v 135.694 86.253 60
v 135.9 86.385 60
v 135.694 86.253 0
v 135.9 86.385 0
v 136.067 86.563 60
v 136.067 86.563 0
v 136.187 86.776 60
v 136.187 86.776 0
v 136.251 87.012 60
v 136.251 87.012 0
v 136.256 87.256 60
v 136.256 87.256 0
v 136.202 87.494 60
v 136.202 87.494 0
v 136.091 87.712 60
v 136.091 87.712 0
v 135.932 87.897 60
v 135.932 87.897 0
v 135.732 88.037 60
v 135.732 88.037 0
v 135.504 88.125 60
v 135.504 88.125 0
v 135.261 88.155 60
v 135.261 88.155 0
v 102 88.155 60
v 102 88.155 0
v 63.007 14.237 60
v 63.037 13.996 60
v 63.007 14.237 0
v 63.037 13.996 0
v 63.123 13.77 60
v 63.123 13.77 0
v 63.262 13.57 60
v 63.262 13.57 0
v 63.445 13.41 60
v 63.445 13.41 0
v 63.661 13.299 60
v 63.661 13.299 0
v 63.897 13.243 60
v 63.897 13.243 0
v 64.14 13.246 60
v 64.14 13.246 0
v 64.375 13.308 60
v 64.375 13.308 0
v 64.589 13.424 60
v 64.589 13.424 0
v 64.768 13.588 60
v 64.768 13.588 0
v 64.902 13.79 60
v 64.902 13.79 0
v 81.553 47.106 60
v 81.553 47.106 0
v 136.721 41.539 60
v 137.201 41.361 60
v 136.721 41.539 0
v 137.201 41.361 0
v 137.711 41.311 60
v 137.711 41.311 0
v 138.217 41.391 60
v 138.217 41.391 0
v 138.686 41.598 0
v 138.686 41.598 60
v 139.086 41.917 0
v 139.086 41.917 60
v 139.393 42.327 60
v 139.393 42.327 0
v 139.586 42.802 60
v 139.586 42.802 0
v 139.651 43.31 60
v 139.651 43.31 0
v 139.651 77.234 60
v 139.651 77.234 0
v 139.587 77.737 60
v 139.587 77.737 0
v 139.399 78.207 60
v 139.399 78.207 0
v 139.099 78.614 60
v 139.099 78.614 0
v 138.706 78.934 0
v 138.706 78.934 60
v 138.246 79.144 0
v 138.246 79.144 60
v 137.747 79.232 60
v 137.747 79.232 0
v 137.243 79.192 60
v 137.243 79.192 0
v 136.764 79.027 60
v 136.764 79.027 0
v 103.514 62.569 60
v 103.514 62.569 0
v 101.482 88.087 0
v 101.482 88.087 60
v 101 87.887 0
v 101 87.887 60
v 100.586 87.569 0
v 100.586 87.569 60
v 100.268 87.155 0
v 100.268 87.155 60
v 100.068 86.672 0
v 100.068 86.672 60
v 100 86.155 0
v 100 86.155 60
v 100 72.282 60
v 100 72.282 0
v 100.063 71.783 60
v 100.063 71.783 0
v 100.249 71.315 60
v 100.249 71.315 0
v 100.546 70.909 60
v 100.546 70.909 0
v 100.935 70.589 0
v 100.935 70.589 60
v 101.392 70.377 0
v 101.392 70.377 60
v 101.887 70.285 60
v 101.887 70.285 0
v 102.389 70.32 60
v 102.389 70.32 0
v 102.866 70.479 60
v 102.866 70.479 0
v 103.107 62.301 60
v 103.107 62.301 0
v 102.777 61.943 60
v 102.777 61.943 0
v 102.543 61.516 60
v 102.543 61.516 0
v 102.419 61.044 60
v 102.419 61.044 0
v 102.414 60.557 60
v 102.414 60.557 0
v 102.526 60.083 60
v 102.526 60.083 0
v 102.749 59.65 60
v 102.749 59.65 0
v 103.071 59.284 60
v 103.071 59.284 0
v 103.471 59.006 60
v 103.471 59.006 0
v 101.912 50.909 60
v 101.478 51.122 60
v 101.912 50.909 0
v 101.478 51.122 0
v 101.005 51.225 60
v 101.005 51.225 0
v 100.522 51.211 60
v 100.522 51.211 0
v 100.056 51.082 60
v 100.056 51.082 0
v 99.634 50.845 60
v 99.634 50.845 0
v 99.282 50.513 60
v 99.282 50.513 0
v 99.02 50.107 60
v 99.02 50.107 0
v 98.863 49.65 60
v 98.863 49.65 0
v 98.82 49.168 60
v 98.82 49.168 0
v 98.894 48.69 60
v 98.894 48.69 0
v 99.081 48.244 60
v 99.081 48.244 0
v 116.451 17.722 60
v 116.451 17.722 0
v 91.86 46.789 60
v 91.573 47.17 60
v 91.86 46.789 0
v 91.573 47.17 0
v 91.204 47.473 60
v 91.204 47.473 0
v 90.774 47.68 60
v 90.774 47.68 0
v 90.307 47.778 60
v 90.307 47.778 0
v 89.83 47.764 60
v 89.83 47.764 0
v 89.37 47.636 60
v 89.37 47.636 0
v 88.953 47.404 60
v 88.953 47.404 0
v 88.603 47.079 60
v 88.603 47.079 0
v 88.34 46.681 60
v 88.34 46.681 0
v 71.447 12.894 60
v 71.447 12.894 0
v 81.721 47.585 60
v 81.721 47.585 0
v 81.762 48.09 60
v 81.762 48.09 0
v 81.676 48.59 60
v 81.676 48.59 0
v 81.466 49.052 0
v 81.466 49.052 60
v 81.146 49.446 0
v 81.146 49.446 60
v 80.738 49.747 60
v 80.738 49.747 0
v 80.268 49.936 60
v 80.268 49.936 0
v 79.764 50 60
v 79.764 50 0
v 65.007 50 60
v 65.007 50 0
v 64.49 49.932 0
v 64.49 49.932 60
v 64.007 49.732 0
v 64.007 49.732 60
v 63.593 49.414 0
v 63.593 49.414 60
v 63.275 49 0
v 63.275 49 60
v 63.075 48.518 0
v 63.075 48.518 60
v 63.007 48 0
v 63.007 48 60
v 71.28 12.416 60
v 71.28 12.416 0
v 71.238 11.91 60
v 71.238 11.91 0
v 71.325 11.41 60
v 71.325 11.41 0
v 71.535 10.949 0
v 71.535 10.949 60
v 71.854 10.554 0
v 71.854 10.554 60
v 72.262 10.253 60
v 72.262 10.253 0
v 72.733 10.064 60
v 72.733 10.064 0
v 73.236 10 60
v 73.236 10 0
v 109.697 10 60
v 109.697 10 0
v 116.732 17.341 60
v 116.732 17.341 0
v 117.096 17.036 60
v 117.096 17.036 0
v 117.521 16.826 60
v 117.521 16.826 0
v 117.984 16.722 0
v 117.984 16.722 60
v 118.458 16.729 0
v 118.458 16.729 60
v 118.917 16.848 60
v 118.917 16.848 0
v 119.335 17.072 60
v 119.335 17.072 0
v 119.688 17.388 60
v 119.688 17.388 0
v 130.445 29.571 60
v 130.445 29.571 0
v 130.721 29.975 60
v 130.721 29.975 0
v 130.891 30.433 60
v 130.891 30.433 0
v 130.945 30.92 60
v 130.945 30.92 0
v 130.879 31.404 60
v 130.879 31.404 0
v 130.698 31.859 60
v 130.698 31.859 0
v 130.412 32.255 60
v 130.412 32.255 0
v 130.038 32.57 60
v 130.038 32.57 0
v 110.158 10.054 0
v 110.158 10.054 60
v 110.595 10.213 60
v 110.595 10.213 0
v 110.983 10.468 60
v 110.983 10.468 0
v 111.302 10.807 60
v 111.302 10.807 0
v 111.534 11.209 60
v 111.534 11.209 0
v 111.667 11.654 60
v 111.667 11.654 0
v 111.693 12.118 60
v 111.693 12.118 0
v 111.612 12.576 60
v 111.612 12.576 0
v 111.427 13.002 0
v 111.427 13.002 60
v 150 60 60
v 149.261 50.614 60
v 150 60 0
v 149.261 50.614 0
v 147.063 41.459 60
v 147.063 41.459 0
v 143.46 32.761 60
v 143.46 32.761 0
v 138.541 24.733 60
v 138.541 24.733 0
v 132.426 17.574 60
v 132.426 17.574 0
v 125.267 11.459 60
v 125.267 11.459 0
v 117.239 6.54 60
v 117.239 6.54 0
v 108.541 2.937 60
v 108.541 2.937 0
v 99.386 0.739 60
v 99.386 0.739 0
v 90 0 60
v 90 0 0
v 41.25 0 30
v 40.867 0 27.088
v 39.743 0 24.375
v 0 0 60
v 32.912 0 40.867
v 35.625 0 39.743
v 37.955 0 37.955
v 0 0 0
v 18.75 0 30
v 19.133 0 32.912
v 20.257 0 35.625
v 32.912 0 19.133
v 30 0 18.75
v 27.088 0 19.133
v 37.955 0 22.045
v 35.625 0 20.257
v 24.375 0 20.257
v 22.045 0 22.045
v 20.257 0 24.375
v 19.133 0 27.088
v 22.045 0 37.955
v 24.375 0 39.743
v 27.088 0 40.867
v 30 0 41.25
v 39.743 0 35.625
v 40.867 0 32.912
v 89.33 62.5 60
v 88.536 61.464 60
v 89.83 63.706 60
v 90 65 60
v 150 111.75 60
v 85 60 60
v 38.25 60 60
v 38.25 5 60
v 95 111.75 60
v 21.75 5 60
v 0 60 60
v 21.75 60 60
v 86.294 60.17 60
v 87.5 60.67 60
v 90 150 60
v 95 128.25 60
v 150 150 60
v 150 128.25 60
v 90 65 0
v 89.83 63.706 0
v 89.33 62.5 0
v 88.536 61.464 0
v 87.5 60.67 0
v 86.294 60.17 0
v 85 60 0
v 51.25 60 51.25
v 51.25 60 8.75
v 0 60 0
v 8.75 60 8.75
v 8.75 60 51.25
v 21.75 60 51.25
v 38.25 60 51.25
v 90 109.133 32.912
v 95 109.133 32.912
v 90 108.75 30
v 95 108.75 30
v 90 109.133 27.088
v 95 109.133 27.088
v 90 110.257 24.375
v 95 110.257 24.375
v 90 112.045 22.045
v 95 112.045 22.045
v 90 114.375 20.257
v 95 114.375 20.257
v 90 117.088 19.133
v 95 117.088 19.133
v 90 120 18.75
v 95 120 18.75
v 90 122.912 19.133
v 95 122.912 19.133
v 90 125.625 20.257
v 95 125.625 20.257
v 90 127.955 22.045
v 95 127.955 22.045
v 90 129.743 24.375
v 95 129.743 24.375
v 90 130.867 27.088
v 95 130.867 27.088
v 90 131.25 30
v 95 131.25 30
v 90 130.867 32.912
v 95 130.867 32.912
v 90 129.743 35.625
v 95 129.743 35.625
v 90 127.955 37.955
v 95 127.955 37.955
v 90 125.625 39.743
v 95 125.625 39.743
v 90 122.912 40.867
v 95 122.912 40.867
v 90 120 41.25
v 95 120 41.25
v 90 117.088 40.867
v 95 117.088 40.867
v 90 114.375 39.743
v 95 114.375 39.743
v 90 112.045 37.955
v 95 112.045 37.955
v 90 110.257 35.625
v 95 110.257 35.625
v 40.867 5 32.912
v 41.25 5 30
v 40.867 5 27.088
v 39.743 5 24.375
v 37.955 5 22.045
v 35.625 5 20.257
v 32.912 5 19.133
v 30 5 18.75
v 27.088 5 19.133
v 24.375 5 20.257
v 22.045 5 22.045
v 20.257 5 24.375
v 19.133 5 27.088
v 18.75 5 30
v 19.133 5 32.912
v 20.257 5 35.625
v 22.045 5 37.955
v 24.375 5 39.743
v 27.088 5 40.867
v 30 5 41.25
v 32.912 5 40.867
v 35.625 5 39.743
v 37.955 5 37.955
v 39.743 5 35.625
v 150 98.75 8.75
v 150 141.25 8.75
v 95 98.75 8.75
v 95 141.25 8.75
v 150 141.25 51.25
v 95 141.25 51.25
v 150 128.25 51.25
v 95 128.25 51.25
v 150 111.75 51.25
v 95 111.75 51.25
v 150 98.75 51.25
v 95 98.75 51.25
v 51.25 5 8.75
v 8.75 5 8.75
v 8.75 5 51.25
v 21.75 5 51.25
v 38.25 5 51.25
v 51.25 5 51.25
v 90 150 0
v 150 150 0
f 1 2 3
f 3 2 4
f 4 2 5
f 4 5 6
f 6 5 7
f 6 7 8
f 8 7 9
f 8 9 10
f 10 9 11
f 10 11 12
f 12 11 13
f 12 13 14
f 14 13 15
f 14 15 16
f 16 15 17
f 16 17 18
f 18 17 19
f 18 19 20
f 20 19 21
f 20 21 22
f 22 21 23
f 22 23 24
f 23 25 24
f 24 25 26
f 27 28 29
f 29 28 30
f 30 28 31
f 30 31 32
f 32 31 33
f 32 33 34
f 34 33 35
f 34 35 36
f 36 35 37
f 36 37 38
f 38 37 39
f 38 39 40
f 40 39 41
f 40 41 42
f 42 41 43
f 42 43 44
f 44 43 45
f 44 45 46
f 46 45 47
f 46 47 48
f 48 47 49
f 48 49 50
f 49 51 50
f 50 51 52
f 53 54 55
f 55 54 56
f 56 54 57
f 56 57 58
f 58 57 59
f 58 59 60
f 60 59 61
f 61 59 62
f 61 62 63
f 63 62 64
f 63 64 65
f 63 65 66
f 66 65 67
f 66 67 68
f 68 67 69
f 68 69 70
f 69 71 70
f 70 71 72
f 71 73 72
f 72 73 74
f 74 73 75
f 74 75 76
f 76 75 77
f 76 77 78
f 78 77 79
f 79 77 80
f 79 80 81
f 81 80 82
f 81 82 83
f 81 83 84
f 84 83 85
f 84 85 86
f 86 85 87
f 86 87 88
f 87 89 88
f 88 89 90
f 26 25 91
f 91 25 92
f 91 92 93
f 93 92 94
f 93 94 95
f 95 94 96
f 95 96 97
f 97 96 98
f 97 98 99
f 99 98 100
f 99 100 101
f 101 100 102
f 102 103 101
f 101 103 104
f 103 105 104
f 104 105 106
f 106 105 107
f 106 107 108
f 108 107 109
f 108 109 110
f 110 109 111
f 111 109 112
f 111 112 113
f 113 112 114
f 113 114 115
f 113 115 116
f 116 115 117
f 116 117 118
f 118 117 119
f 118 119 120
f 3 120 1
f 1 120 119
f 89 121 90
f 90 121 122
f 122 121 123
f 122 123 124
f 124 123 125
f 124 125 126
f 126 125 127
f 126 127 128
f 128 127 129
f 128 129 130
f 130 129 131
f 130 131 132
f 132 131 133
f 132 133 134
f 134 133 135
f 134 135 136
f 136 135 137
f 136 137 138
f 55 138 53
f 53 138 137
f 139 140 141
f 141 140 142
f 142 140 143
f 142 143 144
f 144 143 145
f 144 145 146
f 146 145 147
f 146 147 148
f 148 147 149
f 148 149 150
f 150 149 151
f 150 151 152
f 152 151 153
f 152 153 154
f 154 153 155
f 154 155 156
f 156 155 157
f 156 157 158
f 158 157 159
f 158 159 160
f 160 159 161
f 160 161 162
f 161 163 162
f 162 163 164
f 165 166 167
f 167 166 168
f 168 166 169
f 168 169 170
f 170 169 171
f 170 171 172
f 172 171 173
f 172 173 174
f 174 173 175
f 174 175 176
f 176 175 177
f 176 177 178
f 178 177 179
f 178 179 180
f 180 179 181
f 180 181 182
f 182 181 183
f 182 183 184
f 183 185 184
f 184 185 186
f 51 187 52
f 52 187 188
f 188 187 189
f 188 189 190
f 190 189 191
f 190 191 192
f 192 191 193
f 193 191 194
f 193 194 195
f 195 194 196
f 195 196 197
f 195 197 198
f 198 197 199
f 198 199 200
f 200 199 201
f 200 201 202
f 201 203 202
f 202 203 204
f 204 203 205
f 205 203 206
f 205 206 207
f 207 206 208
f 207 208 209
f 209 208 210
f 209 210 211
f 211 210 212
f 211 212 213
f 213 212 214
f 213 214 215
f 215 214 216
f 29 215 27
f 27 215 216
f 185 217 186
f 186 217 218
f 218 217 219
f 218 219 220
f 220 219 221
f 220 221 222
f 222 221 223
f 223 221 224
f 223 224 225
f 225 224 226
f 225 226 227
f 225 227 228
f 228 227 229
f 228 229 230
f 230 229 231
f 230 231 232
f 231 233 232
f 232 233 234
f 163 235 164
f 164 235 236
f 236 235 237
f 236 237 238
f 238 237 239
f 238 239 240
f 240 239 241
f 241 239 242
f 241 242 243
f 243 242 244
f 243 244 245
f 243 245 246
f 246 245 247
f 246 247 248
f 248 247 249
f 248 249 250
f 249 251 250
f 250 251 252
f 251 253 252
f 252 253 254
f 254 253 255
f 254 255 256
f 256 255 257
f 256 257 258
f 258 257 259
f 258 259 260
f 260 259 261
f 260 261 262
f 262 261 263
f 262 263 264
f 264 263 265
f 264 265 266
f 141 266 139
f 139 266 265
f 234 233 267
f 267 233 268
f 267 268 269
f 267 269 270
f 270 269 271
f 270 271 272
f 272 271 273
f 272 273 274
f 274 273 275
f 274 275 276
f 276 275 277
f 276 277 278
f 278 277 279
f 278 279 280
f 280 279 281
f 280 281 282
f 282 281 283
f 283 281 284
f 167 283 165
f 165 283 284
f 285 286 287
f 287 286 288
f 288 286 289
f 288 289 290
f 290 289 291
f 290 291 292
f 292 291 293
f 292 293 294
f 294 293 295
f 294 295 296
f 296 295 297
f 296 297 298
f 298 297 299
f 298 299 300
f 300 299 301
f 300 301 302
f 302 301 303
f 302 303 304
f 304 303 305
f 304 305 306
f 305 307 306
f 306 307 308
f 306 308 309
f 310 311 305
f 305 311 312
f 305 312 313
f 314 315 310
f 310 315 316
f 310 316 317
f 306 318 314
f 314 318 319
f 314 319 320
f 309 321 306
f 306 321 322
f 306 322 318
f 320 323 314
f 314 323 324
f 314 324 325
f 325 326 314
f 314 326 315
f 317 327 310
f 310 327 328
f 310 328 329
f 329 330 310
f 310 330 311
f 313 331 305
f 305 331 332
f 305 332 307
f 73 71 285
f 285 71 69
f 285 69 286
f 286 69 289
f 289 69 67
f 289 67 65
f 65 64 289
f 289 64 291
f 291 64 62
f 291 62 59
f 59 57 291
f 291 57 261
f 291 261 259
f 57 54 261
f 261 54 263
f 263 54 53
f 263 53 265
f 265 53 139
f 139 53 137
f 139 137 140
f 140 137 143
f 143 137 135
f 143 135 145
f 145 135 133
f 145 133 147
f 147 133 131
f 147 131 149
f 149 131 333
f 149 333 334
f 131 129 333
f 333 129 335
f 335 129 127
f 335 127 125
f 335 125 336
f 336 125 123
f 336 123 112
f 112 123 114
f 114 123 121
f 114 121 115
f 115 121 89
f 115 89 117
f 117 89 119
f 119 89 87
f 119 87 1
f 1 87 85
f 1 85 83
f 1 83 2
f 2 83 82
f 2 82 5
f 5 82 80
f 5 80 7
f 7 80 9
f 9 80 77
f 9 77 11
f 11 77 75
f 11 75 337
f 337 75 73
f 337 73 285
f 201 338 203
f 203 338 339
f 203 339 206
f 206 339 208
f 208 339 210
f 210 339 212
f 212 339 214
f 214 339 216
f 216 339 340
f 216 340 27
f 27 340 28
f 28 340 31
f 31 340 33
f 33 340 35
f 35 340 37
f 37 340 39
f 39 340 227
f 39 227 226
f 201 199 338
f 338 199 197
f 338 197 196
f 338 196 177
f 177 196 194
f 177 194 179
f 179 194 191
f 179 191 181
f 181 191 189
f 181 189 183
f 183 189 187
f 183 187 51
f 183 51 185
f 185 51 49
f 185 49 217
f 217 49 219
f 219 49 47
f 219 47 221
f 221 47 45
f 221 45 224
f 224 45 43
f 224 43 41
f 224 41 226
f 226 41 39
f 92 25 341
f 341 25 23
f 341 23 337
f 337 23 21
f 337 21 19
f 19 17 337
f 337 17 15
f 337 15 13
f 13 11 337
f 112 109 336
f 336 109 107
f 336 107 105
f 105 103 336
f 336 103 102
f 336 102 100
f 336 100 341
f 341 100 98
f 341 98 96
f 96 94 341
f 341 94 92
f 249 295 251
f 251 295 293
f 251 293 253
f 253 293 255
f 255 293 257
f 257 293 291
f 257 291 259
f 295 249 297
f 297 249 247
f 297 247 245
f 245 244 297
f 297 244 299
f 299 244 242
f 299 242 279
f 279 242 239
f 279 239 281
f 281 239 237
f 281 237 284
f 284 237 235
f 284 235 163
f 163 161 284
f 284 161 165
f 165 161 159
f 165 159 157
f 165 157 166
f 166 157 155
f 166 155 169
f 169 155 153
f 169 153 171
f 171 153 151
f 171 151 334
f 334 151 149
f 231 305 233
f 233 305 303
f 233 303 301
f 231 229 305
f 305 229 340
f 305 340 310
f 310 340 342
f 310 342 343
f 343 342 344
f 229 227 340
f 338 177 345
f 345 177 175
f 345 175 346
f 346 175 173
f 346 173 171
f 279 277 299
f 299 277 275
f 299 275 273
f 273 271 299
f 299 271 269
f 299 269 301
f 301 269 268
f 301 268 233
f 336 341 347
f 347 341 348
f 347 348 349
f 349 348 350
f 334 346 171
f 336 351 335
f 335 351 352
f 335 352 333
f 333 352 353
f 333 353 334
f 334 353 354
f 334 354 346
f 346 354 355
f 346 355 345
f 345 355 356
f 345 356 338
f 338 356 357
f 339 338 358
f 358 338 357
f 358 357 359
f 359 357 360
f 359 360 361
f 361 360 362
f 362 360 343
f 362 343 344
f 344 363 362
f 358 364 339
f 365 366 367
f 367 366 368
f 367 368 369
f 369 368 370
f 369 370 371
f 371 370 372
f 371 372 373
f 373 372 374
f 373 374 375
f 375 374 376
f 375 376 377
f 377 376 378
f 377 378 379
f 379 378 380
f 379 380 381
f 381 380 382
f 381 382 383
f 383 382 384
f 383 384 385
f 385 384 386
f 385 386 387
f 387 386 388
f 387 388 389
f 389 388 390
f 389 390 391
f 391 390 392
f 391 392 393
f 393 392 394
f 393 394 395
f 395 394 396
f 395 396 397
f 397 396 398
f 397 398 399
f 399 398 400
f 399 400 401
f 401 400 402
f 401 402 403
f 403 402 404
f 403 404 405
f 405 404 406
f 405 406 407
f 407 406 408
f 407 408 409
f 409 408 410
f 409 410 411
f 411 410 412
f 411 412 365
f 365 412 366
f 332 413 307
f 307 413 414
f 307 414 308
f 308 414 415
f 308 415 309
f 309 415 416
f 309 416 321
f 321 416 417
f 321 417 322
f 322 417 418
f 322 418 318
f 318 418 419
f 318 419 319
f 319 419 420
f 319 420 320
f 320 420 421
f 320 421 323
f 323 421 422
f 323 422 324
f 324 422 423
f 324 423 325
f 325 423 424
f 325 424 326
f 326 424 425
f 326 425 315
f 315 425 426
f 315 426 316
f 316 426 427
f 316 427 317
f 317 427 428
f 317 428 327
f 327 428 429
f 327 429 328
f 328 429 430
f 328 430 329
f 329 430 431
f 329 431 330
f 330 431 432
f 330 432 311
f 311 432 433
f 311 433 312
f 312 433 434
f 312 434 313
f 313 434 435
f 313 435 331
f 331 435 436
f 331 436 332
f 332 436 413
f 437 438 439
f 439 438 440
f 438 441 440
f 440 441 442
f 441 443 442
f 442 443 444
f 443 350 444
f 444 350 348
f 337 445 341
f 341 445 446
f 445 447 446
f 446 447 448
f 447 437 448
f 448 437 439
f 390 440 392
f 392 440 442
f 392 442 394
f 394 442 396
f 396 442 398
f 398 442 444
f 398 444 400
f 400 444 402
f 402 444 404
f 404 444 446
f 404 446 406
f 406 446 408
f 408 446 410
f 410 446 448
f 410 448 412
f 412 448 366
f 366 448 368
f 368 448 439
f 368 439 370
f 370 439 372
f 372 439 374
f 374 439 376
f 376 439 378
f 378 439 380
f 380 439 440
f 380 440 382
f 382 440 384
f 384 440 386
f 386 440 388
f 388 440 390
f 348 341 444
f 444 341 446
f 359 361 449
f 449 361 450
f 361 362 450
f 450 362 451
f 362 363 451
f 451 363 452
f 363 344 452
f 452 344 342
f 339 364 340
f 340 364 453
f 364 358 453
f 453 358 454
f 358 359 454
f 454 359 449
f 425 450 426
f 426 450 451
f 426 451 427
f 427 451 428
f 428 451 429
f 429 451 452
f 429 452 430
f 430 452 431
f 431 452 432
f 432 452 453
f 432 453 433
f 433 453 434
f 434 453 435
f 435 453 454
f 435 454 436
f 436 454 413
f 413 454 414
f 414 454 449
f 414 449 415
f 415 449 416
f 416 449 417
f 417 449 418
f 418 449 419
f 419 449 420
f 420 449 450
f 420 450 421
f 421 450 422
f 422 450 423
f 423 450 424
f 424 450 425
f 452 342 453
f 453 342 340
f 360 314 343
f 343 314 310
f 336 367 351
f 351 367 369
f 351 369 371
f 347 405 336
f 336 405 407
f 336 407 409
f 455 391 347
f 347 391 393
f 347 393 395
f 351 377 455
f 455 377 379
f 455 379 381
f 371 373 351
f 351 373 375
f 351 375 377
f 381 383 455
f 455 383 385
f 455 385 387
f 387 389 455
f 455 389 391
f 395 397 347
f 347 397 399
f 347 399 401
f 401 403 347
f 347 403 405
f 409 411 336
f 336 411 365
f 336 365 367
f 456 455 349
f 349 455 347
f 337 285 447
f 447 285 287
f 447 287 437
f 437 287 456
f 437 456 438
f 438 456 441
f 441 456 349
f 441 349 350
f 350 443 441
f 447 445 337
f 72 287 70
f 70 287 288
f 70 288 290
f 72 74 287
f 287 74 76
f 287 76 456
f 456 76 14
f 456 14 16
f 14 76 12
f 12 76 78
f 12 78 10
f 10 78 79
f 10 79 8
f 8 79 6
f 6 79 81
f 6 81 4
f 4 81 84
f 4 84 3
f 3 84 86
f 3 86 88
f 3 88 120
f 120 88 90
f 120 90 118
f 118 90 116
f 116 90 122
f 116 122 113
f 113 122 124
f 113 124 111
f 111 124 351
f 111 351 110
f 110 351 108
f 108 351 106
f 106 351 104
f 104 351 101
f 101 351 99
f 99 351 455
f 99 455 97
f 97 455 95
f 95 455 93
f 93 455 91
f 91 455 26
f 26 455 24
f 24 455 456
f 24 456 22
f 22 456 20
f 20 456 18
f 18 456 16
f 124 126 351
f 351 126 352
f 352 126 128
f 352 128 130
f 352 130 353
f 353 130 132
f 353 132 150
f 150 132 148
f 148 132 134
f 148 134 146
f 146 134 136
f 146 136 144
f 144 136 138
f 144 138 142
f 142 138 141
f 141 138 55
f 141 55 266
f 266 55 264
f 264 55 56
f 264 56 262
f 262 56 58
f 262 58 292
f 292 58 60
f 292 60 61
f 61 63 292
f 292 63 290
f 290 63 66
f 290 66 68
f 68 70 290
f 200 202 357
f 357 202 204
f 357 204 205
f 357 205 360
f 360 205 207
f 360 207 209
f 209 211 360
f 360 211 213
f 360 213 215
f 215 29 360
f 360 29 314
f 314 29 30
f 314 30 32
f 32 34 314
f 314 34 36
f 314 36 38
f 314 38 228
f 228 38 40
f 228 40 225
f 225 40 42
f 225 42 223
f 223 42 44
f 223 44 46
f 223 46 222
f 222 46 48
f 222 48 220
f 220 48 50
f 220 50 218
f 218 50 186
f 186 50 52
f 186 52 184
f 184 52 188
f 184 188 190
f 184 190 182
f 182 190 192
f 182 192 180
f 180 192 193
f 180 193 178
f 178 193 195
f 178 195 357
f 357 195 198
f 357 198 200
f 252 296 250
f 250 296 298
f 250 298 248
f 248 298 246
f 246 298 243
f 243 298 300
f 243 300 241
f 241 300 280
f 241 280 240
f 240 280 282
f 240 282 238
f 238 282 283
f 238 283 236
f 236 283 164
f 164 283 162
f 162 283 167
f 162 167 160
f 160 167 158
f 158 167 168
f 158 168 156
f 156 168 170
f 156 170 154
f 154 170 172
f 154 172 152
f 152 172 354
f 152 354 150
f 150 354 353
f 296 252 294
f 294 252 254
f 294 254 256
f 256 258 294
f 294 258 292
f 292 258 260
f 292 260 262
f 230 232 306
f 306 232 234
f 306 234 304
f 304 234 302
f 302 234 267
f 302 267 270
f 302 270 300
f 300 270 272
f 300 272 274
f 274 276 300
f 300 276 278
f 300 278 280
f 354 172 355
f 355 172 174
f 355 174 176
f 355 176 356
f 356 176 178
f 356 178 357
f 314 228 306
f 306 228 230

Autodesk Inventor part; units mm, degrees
ref_plane "YZ Plane" through (0, 0, 0) normal (1, 0, 0) x (0, 1, 0)
ref_plane "XZ Plane" through (0, 0, 0) normal (0, 1, 0) x (-1, 0, 0)
ref_plane "XY Plane" through (0, 0, 0) normal (0, 0, 1) x (1, 0, 0)
sketch "Sketch1" plane through (0, 0, 0) normal (0, 0, 1) x (1, 0, 0)
  line L0 (0, 0) -> (150, 0)
  line L1 (150, 0) -> (150, 45)
  line L2 (90, 60) -> (0, 60)
  line L3 (0, 60) -> (0, 0)
  line L4 (90, 60) -> (90, 150)
  line L5 (90, 150) -> (150, 150)
  line L6 (150, 150) -> (150, 45)
  dimension "d5" = 90
  dimension "d6" = 60
  dimension "d7" = 90
  dimension "d9" = 60
  dimension "d10" = 150
  dimension "d11" = 150
extrude "Extrusion1" add sketch "Sketch1" along normal blind 60
sketch "Sketch2" plane through (0, 60, 0) normal (0, 1, 0) x (1, 0, 0)
  line L0 (0, 0) -> (150, 0) construction
  line L1 (0, 0) -> (60, -60) construction
  line L2 (0, 0) -> (84.8528, 0) construction
  line L3 (8.75, -51.25) -> (8.75, -8.75)
  line L4 (8.75, -8.75) -> (51.25, -8.75)
  line L5 (51.25, -8.75) -> (51.25, -51.25)
  line L6 (51.25, -51.25) -> (8.75, -8.75) construction
  line L7 (8.75, -51.25) -> (51.25, -8.75) construction
  line L8 (30, -30) -> (30, -51.25) construction
  line L9 (30, -51.25) -> (21.75, -51.25) construction
  line L10 (30, -51.25) -> (38.25, -51.25) construction
  line L11 (21.75, -51.25) -> (21.75, -60)
  line L12 (0, -60) -> (150, -60) projected
  line L13 (38.25, -51.25) -> (38.25, -60)
  line L14 (21.75, -60) -> (38.25, -60)
  line L15 (51.25, -51.25) -> (38.25, -51.25)
  line L16 (21.75, -51.25) -> (8.75, -51.25)
  dimension "d14" = 84.8528
  dimension "d15" = 45
  dimension "d16" = 42.5
  dimension "d17" = 42.5
  dimension "d32" = 8.25
  dimension "d33" = 8.25
  dimension "d34" = 90
extrude "Extrusion2" cut sketch "Sketch2" against normal blind 55
sketch "Sketch4" plane through (150, 0, 0) normal (1, 0, 0) x (0, 0, -1)
  line L0 (0, 150) -> (0, 60) construction
  line L1 (0, 150) -> (-60, 90) construction
  line L2 (0, 150) -> (84.8528, 150) construction
  line L3 (-51.25, 98.75) -> (-8.75, 98.75)
  line L4 (-8.75, 98.75) -> (-8.75, 141.25)
  line L5 (-8.75, 141.25) -> (-51.25, 141.25)
  line L6 (-51.25, 98.75) -> (-8.75, 141.25) construction
  line L7 (-8.75, 98.75) -> (-51.25, 141.25) construction
  line L8 (-30, 120) -> (-60, 120) construction
  line L9 (-60, 120) -> (-60, 128.25)
  line L10 (-60, 0) -> (-60, 150) projected
  line L11 (-60, 128.25) -> (-51.25, 128.25)
  line L12 (-60, 120) -> (-60, 111.75)
  line L13 (-60, 111.75) -> (-51.25, 111.75)
  line L14 (-51.25, 141.25) -> (-51.25, 128.25)
  line L15 (-51.25, 111.75) -> (-51.25, 98.75)
  point P0 (0, 0)
  dimension "d26" = 84.8528
  dimension "d27" = 135
  dimension "d28" = 42.5
  dimension "d29" = 42.5
  dimension "d35" = 8.25
  dimension "d36" = 8.25
  dimension "d37" = 90
extrude "Extrusion4" cut sketch "Sketch4" against normal blind 55
hole "Hole2" at (30, 5, 30) direction (0, -1, 0) diameter 22.5 end through all
hole "Hole4" at (95, 120, 30) direction (-1, 0, 0) diameter 22.5 end through all
fillet "Fillet1" radius 5 1 edges at (90, 60, 30)
fillet "Fillet2" radius 60 1 edges at (150, 0, 30)
sketch "Sketch5" plane through (0, 0, 60) normal (0, 0, 1) x (1, 0, 0)
  line L0 (0, 0) -> (90, 0) construction
  line L1 (0, 0) -> (60, 0) construction
  line L2 (60, 0) -> (60, 60) construction
  line L3 (60, 60) -> (0, 60) construction
  line L4 (0, 60) -> (0, 0) construction
  line L5 (149.6513, 150.4559) -> (89.6513, 150.4559) construction
  line L6 (89.6513, 150.4559) -> (89.6513, 90.4559) construction
  line L7 (89.6513, 90.4559) -> (149.6513, 90.4559) construction
  line L8 (149.6513, 90.4559) -> (149.6513, 150.4559) construction
  line L9 (89.6513, 90.4559) -> (149.6513, 90.4559) construction
  line L10 (149.6513, 90.4559) -> (149.6513, 80.4559) construction
  line L11 (149.6513, 80.4559) -> (89.6513, 80.4559) construction
  line L12 (89.6513, 80.4559) -> (89.6513, 90.4559) construction
  line L13 (60, 60) -> (70, 60) construction
  line L14 (70, 60) -> (70, 0) construction
  line L15 (70, 0) -> (60, 0) construction
  line L16 (60, 0) -> (60, 60) construction
  line L17 (70, 60) -> (89.6513, 60) construction
  line L18 (89.6513, 60) -> (89.6513, 80.4559) construction
  line L19 (89.6513, 80.4559) -> (70, 80.4559) construction
  line L20 (70, 80.4559) -> (70, 60) construction
  line L21 (70, 60) -> (90, 60) construction
  line L22 (90, 60) -> (90, 50) construction
  line L23 (90, 50) -> (70, 50) construction
  line L24 (70, 50) -> (70, 60) construction
  line L25 (90, 50) -> (100, 50) construction
  line L26 (100, 50) -> (100, 60.8297) construction
  line L27 (100, 60.8297) -> (90, 60.8297) construction
  line L28 (90, 60.8297) -> (90, 50) construction
  line L29 (100, 60.8297) -> (89.6513, 60.8297) construction
  line L30 (89.6513, 60.8297) -> (89.6513, 80.4559) construction
  line L31 (89.6513, 80.4559) -> (100, 80.4559) construction
  line L32 (100, 80.4559) -> (100, 60.8297) construction
  line L33 (149.6513, 80.4559) -> (139.6513, 80.4559) construction
  line L34 (139.6513, 80.4559) -> (139.6513, 0.4559) construction
  line L35 (139.6513, 0.4559) -> (149.6513, 0.4559) construction
  line L36 (149.6513, 0.4559) -> (149.6513, 80.4559) construction
  line L37 (70, 0) -> (139.6513, 0) construction
  line L38 (139.6513, 0) -> (139.6513, 10) construction
  line L39 (139.6513, 10) -> (70, 10) construction
  line L40 (70, 10) -> (70, 0) construction
  arc A0 (90, 0) -> (150, 60) centre (90, 60) ccw construction
  line L41 (123.1662, 10) -> (113.1662, 10) construction
  line L42 (113.1662, 10) -> (113.1662, 20) construction
  line L43 (113.1662, 20) -> (123.1662, 20) construction
  line L44 (123.1662, 20) -> (123.1662, 10) construction
  line L45 (123.1662, 20) -> (133.1662, 20) construction
  line L46 (133.1662, 20) -> (133.1662, 30) construction
  line L47 (133.1662, 30) -> (123.1662, 30) construction
  line L48 (123.1662, 30) -> (123.1662, 20) construction
  line L49 (133.1662, 30) -> (143.1662, 30) construction
  line L50 (143.1662, 30) -> (143.1662, 40) construction
  line L51 (143.1662, 40) -> (133.1662, 40) construction
  line L52 (133.1662, 40) -> (133.1662, 30) construction
  line L53 (70, 10) -> (90, 50)
  line L54 (113.1662, 10) -> (90, 50)
  line L55 (70, 10) -> (113.1662, 10)
  line L56 (100, 60.8297) -> (139.6513, 40)
  line L57 (100, 60.8297) -> (139.6513, 80.4559)
  line L58 (139.6513, 40) -> (139.6513, 80.4559)
  line L59 (113.1662, 10) -> (139.6513, 40) construction
  line L60 (90, 50) -> (100, 60.8297) construction
  line L61 (95, 55.4149) -> (117.8355, 15.289)
  line L62 (95, 55.4149) -> (131.9763, 31.3064)
  line L63 (117.8355, 15.289) -> (131.9763, 31.3064)
  line L64 (90, 50) -> (83, 50) construction
  line L65 (83, 50) -> (63.0073, 10)
  line L66 (63.0073, 10) -> (63.0073, 50)
  line L67 (63.0073, 50) -> (83, 50)
  line L68 (100, 69.1023) -> (139.6513, 88.1548)
  line L69 (139.6513, 88.1548) -> (100, 88.1548)
  line L70 (100, 88.1548) -> (100, 69.1023)
  dimension "d76" = 60
  dimension "d77" = 60
  dimension "d78" = 60
  dimension "d79" = 60
  dimension "d80" = 60
  dimension "d81" = 10
  dimension "d82" = 10
  dimension "d83" = 60
  dimension "d84" = 10
  dimension "d85" = 10
  dimension "d86" = 10
  dimension "d87" = 80
  dimension "d88" = 10
  dimension "d89" = 10
  dimension "d90" = 10
  dimension "d91" = 10
  dimension "d92" = 10
  dimension "d93" = 10
  dimension "d94" = 10
  dimension "d97" = 7
extrude "Extrusion5" cut sketch "Sketch5" against normal blind 94
fillet "Fillet3" radius 2 13 edges at (113.1662, 10, 30) (131.9763, 31.3064, 30) (117.8355, 15.289, 30) (70, 10, 30) (63.0073, 50, 30) (83, 50, 30) (90, 50, 30) (95, 55.4149, 30) (100, 60.8297, 30) (100, 69.1023, 30) (100, 88.1548, 30) (139.6513, 80.4559, 30) (139.6513, 40, 30)
fillet "Fillet4" radius 1 2 edges at (63.0073, 10, 30) (139.6513, 88.1548, 30)
properties part number "OuterFrame"
